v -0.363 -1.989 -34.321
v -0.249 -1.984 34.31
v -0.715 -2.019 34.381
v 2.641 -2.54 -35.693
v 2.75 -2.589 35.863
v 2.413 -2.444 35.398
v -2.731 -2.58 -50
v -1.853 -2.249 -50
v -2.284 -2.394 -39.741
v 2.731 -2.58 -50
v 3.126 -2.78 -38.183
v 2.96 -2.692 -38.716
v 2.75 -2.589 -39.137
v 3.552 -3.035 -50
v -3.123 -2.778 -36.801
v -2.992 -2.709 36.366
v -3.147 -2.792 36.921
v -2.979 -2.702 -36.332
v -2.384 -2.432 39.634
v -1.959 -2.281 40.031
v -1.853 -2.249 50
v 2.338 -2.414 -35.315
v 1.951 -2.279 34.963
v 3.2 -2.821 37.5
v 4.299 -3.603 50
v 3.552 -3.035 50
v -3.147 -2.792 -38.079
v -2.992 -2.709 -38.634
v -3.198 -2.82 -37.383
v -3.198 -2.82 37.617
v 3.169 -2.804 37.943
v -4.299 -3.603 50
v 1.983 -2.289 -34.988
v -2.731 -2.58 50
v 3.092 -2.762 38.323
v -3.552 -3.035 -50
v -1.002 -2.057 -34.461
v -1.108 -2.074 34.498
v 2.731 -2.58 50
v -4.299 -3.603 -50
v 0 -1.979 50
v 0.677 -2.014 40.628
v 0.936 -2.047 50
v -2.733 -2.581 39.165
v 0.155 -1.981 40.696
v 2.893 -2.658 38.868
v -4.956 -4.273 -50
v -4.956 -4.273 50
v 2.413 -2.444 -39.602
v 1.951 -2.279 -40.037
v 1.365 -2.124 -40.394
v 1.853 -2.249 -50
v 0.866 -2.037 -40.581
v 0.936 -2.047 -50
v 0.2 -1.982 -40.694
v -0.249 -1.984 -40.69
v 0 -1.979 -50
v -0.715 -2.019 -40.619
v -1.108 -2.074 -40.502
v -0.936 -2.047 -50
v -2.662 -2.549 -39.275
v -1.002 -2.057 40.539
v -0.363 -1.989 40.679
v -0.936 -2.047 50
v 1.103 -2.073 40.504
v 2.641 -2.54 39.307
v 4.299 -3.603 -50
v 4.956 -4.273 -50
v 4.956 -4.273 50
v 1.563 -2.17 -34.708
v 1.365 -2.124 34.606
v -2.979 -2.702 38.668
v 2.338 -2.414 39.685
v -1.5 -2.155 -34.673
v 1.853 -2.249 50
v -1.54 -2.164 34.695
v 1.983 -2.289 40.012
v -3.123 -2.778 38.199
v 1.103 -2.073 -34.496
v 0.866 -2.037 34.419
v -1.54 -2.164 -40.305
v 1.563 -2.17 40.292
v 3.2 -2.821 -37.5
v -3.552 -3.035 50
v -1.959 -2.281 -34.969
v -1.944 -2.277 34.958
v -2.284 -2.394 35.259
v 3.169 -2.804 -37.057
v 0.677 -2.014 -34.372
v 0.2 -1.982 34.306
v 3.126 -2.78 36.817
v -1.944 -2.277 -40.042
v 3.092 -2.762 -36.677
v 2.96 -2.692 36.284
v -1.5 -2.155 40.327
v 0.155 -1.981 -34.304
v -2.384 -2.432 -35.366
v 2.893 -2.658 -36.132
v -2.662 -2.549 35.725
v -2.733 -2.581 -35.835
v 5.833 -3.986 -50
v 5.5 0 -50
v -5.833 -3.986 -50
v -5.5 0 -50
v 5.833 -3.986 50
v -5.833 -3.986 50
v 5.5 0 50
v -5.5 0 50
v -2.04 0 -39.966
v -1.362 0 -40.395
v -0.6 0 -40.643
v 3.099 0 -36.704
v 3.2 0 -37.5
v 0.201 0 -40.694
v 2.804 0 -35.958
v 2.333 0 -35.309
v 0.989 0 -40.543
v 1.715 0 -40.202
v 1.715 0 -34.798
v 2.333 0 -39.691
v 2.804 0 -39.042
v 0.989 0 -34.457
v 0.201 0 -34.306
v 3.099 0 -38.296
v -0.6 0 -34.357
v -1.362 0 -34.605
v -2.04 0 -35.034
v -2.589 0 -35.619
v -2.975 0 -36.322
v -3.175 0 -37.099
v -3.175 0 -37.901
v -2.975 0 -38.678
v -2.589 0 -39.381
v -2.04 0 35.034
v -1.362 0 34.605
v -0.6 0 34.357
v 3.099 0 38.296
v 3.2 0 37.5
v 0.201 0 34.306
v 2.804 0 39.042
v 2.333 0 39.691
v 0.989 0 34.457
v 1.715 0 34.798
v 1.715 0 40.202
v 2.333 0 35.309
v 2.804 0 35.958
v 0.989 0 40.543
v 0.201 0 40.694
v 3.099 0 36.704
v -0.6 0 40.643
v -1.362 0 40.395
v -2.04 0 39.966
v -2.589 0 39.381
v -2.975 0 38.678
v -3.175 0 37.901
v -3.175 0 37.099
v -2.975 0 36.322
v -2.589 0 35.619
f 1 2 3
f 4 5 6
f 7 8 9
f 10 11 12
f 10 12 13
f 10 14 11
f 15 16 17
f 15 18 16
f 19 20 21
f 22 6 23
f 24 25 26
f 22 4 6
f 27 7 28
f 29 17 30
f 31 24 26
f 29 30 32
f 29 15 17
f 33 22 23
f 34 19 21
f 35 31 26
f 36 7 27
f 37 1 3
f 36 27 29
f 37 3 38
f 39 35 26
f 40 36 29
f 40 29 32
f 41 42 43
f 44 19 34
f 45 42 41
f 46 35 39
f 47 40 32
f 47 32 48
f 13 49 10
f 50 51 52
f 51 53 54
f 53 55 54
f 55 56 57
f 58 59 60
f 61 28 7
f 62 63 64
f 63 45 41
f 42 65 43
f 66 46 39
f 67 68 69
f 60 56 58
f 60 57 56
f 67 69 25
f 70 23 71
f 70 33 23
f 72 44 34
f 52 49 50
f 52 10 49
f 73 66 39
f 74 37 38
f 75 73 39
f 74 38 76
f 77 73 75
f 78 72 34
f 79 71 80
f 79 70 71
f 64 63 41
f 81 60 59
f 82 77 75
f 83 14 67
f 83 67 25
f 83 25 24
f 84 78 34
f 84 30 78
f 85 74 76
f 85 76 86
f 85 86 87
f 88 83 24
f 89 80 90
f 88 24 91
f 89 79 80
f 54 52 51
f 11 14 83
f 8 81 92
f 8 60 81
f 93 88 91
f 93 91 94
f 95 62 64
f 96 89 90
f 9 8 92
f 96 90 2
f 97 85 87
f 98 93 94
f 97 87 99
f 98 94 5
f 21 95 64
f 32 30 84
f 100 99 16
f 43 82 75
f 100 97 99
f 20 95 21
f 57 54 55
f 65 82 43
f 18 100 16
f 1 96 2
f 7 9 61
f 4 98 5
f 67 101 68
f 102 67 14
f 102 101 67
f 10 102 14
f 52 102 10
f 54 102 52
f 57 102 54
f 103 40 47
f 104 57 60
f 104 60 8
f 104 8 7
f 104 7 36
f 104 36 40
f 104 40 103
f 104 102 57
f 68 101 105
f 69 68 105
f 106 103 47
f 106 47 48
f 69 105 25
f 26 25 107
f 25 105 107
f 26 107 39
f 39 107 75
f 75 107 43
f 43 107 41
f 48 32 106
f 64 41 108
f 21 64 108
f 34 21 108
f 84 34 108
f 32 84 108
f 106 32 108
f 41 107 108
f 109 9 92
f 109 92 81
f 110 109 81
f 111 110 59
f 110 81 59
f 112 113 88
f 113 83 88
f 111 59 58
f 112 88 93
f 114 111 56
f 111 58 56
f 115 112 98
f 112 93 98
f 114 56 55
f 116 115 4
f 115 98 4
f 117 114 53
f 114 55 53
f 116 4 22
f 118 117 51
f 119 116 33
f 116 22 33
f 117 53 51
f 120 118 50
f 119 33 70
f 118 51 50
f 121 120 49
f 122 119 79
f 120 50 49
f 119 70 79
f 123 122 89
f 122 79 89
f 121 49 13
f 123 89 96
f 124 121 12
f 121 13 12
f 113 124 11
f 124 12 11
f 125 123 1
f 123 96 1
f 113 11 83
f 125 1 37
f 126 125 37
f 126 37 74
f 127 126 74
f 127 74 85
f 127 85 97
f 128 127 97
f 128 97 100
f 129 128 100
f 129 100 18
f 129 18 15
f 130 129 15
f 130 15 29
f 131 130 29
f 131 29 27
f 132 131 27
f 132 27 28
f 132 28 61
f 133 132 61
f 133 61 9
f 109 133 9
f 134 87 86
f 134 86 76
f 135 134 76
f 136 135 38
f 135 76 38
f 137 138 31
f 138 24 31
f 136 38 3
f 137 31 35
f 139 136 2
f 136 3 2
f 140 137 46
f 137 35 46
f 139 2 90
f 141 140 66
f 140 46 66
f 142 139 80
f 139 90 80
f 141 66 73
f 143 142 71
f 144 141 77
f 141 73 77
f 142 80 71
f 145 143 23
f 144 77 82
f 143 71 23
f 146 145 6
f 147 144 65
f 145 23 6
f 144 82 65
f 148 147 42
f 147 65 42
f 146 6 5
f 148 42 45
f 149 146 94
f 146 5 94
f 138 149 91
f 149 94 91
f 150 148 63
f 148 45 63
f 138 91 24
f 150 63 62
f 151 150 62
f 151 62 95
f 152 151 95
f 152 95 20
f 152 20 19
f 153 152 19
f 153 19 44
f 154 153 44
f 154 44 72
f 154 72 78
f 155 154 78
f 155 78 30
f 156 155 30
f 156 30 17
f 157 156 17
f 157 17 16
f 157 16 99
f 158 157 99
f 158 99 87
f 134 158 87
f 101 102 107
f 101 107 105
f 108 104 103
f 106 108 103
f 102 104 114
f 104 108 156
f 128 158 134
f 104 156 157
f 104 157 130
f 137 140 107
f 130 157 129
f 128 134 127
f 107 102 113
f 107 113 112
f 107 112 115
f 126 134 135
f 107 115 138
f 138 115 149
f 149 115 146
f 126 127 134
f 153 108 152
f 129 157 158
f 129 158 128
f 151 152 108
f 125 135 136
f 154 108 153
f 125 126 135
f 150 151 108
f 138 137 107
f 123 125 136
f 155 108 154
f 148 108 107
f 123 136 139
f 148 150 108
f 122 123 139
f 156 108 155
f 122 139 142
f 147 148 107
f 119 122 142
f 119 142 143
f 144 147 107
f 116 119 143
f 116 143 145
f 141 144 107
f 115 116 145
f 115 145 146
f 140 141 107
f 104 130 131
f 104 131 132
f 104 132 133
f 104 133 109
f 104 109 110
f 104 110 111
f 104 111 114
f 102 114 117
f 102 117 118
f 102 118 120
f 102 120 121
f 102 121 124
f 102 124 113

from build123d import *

# Parameters (mm, degrees)
CYLINDER001_R          = 3.2
CYLINDER001_DEPTH      = 10
CYLINDER001_ROLL_ANGLE = 90
CYLINDER_R             = 3.2
CYLINDER_DEPTH         = 10
CYLINDER_ROLL_ANGLE    = 90
PAD_DEPTH              = 50
CHAMFER_SIZE           = 2


with BuildPart() as cylinder001:
    # Cylinder001 → Cylinder001 (new body)
    with BuildSketch(Plane.XY):
        Circle(CYLINDER001_R)
    extrude(amount=CYLINDER001_DEPTH)


with BuildPart() as cylinder001_1:
    # Cylinder001 roll: moved
    add(cylinder001.part.rotate(Axis((0, 0, 0), (1, 0, 0)), CYLINDER001_ROLL_ANGLE))


with BuildPart() as cylinder001_2:
    # Cylinder001 placement: moved
    add(cylinder001_1.part.moved(Location((0, 2, -37.5))))


with BuildPart() as cylinder:
    # Cylinder → Cylinder (new body)
    with BuildSketch(Plane.XY):
        Circle(CYLINDER_R)
    extrude(amount=CYLINDER_DEPTH)


with BuildPart() as cylinder_1:
    # Cylinder roll: moved
    add(cylinder.part.rotate(Axis((0, 0, 0), (1, 0, 0)), CYLINDER_ROLL_ANGLE))


with BuildPart() as cylinder_2:
    # Cylinder placement: moved
    add(cylinder_1.part.moved(Location((0, 2, 37.5))))


with BuildPart() as chamfer_body:
    # Sketch001 → Pad (new body, symmetric)
    with BuildSketch(Plane.XY):
        with BuildLine():
            ThreePointArc((6, -5.97913), (0, -1.97913), (-6, -5.97913))
            Line((-5.5, 0), (-6, -5.97913))
            Line((-5.5, 0), (5.5, 0))
            Line((5.5, 0), (6, -5.97913))
        make_face()
    extrude(amount=PAD_DEPTH, both=True)

    # Cut: cut Cylinder
    add(cylinder_2.part, mode=Mode.SUBTRACT)

    # Cut002: cut Cylinder001
    add(cylinder001_2.part, mode=Mode.SUBTRACT)

    # Chamfer
    chamfer_edges = [chamfer_body.edges().sort_by_distance(p)[0] for p in [
        (6, -5.97913, 0),
        (-6, -5.97913, 0),
    ]]
    chamfer(chamfer_edges, length=CHAMFER_SIZE)


solid = chamfer_body.part
